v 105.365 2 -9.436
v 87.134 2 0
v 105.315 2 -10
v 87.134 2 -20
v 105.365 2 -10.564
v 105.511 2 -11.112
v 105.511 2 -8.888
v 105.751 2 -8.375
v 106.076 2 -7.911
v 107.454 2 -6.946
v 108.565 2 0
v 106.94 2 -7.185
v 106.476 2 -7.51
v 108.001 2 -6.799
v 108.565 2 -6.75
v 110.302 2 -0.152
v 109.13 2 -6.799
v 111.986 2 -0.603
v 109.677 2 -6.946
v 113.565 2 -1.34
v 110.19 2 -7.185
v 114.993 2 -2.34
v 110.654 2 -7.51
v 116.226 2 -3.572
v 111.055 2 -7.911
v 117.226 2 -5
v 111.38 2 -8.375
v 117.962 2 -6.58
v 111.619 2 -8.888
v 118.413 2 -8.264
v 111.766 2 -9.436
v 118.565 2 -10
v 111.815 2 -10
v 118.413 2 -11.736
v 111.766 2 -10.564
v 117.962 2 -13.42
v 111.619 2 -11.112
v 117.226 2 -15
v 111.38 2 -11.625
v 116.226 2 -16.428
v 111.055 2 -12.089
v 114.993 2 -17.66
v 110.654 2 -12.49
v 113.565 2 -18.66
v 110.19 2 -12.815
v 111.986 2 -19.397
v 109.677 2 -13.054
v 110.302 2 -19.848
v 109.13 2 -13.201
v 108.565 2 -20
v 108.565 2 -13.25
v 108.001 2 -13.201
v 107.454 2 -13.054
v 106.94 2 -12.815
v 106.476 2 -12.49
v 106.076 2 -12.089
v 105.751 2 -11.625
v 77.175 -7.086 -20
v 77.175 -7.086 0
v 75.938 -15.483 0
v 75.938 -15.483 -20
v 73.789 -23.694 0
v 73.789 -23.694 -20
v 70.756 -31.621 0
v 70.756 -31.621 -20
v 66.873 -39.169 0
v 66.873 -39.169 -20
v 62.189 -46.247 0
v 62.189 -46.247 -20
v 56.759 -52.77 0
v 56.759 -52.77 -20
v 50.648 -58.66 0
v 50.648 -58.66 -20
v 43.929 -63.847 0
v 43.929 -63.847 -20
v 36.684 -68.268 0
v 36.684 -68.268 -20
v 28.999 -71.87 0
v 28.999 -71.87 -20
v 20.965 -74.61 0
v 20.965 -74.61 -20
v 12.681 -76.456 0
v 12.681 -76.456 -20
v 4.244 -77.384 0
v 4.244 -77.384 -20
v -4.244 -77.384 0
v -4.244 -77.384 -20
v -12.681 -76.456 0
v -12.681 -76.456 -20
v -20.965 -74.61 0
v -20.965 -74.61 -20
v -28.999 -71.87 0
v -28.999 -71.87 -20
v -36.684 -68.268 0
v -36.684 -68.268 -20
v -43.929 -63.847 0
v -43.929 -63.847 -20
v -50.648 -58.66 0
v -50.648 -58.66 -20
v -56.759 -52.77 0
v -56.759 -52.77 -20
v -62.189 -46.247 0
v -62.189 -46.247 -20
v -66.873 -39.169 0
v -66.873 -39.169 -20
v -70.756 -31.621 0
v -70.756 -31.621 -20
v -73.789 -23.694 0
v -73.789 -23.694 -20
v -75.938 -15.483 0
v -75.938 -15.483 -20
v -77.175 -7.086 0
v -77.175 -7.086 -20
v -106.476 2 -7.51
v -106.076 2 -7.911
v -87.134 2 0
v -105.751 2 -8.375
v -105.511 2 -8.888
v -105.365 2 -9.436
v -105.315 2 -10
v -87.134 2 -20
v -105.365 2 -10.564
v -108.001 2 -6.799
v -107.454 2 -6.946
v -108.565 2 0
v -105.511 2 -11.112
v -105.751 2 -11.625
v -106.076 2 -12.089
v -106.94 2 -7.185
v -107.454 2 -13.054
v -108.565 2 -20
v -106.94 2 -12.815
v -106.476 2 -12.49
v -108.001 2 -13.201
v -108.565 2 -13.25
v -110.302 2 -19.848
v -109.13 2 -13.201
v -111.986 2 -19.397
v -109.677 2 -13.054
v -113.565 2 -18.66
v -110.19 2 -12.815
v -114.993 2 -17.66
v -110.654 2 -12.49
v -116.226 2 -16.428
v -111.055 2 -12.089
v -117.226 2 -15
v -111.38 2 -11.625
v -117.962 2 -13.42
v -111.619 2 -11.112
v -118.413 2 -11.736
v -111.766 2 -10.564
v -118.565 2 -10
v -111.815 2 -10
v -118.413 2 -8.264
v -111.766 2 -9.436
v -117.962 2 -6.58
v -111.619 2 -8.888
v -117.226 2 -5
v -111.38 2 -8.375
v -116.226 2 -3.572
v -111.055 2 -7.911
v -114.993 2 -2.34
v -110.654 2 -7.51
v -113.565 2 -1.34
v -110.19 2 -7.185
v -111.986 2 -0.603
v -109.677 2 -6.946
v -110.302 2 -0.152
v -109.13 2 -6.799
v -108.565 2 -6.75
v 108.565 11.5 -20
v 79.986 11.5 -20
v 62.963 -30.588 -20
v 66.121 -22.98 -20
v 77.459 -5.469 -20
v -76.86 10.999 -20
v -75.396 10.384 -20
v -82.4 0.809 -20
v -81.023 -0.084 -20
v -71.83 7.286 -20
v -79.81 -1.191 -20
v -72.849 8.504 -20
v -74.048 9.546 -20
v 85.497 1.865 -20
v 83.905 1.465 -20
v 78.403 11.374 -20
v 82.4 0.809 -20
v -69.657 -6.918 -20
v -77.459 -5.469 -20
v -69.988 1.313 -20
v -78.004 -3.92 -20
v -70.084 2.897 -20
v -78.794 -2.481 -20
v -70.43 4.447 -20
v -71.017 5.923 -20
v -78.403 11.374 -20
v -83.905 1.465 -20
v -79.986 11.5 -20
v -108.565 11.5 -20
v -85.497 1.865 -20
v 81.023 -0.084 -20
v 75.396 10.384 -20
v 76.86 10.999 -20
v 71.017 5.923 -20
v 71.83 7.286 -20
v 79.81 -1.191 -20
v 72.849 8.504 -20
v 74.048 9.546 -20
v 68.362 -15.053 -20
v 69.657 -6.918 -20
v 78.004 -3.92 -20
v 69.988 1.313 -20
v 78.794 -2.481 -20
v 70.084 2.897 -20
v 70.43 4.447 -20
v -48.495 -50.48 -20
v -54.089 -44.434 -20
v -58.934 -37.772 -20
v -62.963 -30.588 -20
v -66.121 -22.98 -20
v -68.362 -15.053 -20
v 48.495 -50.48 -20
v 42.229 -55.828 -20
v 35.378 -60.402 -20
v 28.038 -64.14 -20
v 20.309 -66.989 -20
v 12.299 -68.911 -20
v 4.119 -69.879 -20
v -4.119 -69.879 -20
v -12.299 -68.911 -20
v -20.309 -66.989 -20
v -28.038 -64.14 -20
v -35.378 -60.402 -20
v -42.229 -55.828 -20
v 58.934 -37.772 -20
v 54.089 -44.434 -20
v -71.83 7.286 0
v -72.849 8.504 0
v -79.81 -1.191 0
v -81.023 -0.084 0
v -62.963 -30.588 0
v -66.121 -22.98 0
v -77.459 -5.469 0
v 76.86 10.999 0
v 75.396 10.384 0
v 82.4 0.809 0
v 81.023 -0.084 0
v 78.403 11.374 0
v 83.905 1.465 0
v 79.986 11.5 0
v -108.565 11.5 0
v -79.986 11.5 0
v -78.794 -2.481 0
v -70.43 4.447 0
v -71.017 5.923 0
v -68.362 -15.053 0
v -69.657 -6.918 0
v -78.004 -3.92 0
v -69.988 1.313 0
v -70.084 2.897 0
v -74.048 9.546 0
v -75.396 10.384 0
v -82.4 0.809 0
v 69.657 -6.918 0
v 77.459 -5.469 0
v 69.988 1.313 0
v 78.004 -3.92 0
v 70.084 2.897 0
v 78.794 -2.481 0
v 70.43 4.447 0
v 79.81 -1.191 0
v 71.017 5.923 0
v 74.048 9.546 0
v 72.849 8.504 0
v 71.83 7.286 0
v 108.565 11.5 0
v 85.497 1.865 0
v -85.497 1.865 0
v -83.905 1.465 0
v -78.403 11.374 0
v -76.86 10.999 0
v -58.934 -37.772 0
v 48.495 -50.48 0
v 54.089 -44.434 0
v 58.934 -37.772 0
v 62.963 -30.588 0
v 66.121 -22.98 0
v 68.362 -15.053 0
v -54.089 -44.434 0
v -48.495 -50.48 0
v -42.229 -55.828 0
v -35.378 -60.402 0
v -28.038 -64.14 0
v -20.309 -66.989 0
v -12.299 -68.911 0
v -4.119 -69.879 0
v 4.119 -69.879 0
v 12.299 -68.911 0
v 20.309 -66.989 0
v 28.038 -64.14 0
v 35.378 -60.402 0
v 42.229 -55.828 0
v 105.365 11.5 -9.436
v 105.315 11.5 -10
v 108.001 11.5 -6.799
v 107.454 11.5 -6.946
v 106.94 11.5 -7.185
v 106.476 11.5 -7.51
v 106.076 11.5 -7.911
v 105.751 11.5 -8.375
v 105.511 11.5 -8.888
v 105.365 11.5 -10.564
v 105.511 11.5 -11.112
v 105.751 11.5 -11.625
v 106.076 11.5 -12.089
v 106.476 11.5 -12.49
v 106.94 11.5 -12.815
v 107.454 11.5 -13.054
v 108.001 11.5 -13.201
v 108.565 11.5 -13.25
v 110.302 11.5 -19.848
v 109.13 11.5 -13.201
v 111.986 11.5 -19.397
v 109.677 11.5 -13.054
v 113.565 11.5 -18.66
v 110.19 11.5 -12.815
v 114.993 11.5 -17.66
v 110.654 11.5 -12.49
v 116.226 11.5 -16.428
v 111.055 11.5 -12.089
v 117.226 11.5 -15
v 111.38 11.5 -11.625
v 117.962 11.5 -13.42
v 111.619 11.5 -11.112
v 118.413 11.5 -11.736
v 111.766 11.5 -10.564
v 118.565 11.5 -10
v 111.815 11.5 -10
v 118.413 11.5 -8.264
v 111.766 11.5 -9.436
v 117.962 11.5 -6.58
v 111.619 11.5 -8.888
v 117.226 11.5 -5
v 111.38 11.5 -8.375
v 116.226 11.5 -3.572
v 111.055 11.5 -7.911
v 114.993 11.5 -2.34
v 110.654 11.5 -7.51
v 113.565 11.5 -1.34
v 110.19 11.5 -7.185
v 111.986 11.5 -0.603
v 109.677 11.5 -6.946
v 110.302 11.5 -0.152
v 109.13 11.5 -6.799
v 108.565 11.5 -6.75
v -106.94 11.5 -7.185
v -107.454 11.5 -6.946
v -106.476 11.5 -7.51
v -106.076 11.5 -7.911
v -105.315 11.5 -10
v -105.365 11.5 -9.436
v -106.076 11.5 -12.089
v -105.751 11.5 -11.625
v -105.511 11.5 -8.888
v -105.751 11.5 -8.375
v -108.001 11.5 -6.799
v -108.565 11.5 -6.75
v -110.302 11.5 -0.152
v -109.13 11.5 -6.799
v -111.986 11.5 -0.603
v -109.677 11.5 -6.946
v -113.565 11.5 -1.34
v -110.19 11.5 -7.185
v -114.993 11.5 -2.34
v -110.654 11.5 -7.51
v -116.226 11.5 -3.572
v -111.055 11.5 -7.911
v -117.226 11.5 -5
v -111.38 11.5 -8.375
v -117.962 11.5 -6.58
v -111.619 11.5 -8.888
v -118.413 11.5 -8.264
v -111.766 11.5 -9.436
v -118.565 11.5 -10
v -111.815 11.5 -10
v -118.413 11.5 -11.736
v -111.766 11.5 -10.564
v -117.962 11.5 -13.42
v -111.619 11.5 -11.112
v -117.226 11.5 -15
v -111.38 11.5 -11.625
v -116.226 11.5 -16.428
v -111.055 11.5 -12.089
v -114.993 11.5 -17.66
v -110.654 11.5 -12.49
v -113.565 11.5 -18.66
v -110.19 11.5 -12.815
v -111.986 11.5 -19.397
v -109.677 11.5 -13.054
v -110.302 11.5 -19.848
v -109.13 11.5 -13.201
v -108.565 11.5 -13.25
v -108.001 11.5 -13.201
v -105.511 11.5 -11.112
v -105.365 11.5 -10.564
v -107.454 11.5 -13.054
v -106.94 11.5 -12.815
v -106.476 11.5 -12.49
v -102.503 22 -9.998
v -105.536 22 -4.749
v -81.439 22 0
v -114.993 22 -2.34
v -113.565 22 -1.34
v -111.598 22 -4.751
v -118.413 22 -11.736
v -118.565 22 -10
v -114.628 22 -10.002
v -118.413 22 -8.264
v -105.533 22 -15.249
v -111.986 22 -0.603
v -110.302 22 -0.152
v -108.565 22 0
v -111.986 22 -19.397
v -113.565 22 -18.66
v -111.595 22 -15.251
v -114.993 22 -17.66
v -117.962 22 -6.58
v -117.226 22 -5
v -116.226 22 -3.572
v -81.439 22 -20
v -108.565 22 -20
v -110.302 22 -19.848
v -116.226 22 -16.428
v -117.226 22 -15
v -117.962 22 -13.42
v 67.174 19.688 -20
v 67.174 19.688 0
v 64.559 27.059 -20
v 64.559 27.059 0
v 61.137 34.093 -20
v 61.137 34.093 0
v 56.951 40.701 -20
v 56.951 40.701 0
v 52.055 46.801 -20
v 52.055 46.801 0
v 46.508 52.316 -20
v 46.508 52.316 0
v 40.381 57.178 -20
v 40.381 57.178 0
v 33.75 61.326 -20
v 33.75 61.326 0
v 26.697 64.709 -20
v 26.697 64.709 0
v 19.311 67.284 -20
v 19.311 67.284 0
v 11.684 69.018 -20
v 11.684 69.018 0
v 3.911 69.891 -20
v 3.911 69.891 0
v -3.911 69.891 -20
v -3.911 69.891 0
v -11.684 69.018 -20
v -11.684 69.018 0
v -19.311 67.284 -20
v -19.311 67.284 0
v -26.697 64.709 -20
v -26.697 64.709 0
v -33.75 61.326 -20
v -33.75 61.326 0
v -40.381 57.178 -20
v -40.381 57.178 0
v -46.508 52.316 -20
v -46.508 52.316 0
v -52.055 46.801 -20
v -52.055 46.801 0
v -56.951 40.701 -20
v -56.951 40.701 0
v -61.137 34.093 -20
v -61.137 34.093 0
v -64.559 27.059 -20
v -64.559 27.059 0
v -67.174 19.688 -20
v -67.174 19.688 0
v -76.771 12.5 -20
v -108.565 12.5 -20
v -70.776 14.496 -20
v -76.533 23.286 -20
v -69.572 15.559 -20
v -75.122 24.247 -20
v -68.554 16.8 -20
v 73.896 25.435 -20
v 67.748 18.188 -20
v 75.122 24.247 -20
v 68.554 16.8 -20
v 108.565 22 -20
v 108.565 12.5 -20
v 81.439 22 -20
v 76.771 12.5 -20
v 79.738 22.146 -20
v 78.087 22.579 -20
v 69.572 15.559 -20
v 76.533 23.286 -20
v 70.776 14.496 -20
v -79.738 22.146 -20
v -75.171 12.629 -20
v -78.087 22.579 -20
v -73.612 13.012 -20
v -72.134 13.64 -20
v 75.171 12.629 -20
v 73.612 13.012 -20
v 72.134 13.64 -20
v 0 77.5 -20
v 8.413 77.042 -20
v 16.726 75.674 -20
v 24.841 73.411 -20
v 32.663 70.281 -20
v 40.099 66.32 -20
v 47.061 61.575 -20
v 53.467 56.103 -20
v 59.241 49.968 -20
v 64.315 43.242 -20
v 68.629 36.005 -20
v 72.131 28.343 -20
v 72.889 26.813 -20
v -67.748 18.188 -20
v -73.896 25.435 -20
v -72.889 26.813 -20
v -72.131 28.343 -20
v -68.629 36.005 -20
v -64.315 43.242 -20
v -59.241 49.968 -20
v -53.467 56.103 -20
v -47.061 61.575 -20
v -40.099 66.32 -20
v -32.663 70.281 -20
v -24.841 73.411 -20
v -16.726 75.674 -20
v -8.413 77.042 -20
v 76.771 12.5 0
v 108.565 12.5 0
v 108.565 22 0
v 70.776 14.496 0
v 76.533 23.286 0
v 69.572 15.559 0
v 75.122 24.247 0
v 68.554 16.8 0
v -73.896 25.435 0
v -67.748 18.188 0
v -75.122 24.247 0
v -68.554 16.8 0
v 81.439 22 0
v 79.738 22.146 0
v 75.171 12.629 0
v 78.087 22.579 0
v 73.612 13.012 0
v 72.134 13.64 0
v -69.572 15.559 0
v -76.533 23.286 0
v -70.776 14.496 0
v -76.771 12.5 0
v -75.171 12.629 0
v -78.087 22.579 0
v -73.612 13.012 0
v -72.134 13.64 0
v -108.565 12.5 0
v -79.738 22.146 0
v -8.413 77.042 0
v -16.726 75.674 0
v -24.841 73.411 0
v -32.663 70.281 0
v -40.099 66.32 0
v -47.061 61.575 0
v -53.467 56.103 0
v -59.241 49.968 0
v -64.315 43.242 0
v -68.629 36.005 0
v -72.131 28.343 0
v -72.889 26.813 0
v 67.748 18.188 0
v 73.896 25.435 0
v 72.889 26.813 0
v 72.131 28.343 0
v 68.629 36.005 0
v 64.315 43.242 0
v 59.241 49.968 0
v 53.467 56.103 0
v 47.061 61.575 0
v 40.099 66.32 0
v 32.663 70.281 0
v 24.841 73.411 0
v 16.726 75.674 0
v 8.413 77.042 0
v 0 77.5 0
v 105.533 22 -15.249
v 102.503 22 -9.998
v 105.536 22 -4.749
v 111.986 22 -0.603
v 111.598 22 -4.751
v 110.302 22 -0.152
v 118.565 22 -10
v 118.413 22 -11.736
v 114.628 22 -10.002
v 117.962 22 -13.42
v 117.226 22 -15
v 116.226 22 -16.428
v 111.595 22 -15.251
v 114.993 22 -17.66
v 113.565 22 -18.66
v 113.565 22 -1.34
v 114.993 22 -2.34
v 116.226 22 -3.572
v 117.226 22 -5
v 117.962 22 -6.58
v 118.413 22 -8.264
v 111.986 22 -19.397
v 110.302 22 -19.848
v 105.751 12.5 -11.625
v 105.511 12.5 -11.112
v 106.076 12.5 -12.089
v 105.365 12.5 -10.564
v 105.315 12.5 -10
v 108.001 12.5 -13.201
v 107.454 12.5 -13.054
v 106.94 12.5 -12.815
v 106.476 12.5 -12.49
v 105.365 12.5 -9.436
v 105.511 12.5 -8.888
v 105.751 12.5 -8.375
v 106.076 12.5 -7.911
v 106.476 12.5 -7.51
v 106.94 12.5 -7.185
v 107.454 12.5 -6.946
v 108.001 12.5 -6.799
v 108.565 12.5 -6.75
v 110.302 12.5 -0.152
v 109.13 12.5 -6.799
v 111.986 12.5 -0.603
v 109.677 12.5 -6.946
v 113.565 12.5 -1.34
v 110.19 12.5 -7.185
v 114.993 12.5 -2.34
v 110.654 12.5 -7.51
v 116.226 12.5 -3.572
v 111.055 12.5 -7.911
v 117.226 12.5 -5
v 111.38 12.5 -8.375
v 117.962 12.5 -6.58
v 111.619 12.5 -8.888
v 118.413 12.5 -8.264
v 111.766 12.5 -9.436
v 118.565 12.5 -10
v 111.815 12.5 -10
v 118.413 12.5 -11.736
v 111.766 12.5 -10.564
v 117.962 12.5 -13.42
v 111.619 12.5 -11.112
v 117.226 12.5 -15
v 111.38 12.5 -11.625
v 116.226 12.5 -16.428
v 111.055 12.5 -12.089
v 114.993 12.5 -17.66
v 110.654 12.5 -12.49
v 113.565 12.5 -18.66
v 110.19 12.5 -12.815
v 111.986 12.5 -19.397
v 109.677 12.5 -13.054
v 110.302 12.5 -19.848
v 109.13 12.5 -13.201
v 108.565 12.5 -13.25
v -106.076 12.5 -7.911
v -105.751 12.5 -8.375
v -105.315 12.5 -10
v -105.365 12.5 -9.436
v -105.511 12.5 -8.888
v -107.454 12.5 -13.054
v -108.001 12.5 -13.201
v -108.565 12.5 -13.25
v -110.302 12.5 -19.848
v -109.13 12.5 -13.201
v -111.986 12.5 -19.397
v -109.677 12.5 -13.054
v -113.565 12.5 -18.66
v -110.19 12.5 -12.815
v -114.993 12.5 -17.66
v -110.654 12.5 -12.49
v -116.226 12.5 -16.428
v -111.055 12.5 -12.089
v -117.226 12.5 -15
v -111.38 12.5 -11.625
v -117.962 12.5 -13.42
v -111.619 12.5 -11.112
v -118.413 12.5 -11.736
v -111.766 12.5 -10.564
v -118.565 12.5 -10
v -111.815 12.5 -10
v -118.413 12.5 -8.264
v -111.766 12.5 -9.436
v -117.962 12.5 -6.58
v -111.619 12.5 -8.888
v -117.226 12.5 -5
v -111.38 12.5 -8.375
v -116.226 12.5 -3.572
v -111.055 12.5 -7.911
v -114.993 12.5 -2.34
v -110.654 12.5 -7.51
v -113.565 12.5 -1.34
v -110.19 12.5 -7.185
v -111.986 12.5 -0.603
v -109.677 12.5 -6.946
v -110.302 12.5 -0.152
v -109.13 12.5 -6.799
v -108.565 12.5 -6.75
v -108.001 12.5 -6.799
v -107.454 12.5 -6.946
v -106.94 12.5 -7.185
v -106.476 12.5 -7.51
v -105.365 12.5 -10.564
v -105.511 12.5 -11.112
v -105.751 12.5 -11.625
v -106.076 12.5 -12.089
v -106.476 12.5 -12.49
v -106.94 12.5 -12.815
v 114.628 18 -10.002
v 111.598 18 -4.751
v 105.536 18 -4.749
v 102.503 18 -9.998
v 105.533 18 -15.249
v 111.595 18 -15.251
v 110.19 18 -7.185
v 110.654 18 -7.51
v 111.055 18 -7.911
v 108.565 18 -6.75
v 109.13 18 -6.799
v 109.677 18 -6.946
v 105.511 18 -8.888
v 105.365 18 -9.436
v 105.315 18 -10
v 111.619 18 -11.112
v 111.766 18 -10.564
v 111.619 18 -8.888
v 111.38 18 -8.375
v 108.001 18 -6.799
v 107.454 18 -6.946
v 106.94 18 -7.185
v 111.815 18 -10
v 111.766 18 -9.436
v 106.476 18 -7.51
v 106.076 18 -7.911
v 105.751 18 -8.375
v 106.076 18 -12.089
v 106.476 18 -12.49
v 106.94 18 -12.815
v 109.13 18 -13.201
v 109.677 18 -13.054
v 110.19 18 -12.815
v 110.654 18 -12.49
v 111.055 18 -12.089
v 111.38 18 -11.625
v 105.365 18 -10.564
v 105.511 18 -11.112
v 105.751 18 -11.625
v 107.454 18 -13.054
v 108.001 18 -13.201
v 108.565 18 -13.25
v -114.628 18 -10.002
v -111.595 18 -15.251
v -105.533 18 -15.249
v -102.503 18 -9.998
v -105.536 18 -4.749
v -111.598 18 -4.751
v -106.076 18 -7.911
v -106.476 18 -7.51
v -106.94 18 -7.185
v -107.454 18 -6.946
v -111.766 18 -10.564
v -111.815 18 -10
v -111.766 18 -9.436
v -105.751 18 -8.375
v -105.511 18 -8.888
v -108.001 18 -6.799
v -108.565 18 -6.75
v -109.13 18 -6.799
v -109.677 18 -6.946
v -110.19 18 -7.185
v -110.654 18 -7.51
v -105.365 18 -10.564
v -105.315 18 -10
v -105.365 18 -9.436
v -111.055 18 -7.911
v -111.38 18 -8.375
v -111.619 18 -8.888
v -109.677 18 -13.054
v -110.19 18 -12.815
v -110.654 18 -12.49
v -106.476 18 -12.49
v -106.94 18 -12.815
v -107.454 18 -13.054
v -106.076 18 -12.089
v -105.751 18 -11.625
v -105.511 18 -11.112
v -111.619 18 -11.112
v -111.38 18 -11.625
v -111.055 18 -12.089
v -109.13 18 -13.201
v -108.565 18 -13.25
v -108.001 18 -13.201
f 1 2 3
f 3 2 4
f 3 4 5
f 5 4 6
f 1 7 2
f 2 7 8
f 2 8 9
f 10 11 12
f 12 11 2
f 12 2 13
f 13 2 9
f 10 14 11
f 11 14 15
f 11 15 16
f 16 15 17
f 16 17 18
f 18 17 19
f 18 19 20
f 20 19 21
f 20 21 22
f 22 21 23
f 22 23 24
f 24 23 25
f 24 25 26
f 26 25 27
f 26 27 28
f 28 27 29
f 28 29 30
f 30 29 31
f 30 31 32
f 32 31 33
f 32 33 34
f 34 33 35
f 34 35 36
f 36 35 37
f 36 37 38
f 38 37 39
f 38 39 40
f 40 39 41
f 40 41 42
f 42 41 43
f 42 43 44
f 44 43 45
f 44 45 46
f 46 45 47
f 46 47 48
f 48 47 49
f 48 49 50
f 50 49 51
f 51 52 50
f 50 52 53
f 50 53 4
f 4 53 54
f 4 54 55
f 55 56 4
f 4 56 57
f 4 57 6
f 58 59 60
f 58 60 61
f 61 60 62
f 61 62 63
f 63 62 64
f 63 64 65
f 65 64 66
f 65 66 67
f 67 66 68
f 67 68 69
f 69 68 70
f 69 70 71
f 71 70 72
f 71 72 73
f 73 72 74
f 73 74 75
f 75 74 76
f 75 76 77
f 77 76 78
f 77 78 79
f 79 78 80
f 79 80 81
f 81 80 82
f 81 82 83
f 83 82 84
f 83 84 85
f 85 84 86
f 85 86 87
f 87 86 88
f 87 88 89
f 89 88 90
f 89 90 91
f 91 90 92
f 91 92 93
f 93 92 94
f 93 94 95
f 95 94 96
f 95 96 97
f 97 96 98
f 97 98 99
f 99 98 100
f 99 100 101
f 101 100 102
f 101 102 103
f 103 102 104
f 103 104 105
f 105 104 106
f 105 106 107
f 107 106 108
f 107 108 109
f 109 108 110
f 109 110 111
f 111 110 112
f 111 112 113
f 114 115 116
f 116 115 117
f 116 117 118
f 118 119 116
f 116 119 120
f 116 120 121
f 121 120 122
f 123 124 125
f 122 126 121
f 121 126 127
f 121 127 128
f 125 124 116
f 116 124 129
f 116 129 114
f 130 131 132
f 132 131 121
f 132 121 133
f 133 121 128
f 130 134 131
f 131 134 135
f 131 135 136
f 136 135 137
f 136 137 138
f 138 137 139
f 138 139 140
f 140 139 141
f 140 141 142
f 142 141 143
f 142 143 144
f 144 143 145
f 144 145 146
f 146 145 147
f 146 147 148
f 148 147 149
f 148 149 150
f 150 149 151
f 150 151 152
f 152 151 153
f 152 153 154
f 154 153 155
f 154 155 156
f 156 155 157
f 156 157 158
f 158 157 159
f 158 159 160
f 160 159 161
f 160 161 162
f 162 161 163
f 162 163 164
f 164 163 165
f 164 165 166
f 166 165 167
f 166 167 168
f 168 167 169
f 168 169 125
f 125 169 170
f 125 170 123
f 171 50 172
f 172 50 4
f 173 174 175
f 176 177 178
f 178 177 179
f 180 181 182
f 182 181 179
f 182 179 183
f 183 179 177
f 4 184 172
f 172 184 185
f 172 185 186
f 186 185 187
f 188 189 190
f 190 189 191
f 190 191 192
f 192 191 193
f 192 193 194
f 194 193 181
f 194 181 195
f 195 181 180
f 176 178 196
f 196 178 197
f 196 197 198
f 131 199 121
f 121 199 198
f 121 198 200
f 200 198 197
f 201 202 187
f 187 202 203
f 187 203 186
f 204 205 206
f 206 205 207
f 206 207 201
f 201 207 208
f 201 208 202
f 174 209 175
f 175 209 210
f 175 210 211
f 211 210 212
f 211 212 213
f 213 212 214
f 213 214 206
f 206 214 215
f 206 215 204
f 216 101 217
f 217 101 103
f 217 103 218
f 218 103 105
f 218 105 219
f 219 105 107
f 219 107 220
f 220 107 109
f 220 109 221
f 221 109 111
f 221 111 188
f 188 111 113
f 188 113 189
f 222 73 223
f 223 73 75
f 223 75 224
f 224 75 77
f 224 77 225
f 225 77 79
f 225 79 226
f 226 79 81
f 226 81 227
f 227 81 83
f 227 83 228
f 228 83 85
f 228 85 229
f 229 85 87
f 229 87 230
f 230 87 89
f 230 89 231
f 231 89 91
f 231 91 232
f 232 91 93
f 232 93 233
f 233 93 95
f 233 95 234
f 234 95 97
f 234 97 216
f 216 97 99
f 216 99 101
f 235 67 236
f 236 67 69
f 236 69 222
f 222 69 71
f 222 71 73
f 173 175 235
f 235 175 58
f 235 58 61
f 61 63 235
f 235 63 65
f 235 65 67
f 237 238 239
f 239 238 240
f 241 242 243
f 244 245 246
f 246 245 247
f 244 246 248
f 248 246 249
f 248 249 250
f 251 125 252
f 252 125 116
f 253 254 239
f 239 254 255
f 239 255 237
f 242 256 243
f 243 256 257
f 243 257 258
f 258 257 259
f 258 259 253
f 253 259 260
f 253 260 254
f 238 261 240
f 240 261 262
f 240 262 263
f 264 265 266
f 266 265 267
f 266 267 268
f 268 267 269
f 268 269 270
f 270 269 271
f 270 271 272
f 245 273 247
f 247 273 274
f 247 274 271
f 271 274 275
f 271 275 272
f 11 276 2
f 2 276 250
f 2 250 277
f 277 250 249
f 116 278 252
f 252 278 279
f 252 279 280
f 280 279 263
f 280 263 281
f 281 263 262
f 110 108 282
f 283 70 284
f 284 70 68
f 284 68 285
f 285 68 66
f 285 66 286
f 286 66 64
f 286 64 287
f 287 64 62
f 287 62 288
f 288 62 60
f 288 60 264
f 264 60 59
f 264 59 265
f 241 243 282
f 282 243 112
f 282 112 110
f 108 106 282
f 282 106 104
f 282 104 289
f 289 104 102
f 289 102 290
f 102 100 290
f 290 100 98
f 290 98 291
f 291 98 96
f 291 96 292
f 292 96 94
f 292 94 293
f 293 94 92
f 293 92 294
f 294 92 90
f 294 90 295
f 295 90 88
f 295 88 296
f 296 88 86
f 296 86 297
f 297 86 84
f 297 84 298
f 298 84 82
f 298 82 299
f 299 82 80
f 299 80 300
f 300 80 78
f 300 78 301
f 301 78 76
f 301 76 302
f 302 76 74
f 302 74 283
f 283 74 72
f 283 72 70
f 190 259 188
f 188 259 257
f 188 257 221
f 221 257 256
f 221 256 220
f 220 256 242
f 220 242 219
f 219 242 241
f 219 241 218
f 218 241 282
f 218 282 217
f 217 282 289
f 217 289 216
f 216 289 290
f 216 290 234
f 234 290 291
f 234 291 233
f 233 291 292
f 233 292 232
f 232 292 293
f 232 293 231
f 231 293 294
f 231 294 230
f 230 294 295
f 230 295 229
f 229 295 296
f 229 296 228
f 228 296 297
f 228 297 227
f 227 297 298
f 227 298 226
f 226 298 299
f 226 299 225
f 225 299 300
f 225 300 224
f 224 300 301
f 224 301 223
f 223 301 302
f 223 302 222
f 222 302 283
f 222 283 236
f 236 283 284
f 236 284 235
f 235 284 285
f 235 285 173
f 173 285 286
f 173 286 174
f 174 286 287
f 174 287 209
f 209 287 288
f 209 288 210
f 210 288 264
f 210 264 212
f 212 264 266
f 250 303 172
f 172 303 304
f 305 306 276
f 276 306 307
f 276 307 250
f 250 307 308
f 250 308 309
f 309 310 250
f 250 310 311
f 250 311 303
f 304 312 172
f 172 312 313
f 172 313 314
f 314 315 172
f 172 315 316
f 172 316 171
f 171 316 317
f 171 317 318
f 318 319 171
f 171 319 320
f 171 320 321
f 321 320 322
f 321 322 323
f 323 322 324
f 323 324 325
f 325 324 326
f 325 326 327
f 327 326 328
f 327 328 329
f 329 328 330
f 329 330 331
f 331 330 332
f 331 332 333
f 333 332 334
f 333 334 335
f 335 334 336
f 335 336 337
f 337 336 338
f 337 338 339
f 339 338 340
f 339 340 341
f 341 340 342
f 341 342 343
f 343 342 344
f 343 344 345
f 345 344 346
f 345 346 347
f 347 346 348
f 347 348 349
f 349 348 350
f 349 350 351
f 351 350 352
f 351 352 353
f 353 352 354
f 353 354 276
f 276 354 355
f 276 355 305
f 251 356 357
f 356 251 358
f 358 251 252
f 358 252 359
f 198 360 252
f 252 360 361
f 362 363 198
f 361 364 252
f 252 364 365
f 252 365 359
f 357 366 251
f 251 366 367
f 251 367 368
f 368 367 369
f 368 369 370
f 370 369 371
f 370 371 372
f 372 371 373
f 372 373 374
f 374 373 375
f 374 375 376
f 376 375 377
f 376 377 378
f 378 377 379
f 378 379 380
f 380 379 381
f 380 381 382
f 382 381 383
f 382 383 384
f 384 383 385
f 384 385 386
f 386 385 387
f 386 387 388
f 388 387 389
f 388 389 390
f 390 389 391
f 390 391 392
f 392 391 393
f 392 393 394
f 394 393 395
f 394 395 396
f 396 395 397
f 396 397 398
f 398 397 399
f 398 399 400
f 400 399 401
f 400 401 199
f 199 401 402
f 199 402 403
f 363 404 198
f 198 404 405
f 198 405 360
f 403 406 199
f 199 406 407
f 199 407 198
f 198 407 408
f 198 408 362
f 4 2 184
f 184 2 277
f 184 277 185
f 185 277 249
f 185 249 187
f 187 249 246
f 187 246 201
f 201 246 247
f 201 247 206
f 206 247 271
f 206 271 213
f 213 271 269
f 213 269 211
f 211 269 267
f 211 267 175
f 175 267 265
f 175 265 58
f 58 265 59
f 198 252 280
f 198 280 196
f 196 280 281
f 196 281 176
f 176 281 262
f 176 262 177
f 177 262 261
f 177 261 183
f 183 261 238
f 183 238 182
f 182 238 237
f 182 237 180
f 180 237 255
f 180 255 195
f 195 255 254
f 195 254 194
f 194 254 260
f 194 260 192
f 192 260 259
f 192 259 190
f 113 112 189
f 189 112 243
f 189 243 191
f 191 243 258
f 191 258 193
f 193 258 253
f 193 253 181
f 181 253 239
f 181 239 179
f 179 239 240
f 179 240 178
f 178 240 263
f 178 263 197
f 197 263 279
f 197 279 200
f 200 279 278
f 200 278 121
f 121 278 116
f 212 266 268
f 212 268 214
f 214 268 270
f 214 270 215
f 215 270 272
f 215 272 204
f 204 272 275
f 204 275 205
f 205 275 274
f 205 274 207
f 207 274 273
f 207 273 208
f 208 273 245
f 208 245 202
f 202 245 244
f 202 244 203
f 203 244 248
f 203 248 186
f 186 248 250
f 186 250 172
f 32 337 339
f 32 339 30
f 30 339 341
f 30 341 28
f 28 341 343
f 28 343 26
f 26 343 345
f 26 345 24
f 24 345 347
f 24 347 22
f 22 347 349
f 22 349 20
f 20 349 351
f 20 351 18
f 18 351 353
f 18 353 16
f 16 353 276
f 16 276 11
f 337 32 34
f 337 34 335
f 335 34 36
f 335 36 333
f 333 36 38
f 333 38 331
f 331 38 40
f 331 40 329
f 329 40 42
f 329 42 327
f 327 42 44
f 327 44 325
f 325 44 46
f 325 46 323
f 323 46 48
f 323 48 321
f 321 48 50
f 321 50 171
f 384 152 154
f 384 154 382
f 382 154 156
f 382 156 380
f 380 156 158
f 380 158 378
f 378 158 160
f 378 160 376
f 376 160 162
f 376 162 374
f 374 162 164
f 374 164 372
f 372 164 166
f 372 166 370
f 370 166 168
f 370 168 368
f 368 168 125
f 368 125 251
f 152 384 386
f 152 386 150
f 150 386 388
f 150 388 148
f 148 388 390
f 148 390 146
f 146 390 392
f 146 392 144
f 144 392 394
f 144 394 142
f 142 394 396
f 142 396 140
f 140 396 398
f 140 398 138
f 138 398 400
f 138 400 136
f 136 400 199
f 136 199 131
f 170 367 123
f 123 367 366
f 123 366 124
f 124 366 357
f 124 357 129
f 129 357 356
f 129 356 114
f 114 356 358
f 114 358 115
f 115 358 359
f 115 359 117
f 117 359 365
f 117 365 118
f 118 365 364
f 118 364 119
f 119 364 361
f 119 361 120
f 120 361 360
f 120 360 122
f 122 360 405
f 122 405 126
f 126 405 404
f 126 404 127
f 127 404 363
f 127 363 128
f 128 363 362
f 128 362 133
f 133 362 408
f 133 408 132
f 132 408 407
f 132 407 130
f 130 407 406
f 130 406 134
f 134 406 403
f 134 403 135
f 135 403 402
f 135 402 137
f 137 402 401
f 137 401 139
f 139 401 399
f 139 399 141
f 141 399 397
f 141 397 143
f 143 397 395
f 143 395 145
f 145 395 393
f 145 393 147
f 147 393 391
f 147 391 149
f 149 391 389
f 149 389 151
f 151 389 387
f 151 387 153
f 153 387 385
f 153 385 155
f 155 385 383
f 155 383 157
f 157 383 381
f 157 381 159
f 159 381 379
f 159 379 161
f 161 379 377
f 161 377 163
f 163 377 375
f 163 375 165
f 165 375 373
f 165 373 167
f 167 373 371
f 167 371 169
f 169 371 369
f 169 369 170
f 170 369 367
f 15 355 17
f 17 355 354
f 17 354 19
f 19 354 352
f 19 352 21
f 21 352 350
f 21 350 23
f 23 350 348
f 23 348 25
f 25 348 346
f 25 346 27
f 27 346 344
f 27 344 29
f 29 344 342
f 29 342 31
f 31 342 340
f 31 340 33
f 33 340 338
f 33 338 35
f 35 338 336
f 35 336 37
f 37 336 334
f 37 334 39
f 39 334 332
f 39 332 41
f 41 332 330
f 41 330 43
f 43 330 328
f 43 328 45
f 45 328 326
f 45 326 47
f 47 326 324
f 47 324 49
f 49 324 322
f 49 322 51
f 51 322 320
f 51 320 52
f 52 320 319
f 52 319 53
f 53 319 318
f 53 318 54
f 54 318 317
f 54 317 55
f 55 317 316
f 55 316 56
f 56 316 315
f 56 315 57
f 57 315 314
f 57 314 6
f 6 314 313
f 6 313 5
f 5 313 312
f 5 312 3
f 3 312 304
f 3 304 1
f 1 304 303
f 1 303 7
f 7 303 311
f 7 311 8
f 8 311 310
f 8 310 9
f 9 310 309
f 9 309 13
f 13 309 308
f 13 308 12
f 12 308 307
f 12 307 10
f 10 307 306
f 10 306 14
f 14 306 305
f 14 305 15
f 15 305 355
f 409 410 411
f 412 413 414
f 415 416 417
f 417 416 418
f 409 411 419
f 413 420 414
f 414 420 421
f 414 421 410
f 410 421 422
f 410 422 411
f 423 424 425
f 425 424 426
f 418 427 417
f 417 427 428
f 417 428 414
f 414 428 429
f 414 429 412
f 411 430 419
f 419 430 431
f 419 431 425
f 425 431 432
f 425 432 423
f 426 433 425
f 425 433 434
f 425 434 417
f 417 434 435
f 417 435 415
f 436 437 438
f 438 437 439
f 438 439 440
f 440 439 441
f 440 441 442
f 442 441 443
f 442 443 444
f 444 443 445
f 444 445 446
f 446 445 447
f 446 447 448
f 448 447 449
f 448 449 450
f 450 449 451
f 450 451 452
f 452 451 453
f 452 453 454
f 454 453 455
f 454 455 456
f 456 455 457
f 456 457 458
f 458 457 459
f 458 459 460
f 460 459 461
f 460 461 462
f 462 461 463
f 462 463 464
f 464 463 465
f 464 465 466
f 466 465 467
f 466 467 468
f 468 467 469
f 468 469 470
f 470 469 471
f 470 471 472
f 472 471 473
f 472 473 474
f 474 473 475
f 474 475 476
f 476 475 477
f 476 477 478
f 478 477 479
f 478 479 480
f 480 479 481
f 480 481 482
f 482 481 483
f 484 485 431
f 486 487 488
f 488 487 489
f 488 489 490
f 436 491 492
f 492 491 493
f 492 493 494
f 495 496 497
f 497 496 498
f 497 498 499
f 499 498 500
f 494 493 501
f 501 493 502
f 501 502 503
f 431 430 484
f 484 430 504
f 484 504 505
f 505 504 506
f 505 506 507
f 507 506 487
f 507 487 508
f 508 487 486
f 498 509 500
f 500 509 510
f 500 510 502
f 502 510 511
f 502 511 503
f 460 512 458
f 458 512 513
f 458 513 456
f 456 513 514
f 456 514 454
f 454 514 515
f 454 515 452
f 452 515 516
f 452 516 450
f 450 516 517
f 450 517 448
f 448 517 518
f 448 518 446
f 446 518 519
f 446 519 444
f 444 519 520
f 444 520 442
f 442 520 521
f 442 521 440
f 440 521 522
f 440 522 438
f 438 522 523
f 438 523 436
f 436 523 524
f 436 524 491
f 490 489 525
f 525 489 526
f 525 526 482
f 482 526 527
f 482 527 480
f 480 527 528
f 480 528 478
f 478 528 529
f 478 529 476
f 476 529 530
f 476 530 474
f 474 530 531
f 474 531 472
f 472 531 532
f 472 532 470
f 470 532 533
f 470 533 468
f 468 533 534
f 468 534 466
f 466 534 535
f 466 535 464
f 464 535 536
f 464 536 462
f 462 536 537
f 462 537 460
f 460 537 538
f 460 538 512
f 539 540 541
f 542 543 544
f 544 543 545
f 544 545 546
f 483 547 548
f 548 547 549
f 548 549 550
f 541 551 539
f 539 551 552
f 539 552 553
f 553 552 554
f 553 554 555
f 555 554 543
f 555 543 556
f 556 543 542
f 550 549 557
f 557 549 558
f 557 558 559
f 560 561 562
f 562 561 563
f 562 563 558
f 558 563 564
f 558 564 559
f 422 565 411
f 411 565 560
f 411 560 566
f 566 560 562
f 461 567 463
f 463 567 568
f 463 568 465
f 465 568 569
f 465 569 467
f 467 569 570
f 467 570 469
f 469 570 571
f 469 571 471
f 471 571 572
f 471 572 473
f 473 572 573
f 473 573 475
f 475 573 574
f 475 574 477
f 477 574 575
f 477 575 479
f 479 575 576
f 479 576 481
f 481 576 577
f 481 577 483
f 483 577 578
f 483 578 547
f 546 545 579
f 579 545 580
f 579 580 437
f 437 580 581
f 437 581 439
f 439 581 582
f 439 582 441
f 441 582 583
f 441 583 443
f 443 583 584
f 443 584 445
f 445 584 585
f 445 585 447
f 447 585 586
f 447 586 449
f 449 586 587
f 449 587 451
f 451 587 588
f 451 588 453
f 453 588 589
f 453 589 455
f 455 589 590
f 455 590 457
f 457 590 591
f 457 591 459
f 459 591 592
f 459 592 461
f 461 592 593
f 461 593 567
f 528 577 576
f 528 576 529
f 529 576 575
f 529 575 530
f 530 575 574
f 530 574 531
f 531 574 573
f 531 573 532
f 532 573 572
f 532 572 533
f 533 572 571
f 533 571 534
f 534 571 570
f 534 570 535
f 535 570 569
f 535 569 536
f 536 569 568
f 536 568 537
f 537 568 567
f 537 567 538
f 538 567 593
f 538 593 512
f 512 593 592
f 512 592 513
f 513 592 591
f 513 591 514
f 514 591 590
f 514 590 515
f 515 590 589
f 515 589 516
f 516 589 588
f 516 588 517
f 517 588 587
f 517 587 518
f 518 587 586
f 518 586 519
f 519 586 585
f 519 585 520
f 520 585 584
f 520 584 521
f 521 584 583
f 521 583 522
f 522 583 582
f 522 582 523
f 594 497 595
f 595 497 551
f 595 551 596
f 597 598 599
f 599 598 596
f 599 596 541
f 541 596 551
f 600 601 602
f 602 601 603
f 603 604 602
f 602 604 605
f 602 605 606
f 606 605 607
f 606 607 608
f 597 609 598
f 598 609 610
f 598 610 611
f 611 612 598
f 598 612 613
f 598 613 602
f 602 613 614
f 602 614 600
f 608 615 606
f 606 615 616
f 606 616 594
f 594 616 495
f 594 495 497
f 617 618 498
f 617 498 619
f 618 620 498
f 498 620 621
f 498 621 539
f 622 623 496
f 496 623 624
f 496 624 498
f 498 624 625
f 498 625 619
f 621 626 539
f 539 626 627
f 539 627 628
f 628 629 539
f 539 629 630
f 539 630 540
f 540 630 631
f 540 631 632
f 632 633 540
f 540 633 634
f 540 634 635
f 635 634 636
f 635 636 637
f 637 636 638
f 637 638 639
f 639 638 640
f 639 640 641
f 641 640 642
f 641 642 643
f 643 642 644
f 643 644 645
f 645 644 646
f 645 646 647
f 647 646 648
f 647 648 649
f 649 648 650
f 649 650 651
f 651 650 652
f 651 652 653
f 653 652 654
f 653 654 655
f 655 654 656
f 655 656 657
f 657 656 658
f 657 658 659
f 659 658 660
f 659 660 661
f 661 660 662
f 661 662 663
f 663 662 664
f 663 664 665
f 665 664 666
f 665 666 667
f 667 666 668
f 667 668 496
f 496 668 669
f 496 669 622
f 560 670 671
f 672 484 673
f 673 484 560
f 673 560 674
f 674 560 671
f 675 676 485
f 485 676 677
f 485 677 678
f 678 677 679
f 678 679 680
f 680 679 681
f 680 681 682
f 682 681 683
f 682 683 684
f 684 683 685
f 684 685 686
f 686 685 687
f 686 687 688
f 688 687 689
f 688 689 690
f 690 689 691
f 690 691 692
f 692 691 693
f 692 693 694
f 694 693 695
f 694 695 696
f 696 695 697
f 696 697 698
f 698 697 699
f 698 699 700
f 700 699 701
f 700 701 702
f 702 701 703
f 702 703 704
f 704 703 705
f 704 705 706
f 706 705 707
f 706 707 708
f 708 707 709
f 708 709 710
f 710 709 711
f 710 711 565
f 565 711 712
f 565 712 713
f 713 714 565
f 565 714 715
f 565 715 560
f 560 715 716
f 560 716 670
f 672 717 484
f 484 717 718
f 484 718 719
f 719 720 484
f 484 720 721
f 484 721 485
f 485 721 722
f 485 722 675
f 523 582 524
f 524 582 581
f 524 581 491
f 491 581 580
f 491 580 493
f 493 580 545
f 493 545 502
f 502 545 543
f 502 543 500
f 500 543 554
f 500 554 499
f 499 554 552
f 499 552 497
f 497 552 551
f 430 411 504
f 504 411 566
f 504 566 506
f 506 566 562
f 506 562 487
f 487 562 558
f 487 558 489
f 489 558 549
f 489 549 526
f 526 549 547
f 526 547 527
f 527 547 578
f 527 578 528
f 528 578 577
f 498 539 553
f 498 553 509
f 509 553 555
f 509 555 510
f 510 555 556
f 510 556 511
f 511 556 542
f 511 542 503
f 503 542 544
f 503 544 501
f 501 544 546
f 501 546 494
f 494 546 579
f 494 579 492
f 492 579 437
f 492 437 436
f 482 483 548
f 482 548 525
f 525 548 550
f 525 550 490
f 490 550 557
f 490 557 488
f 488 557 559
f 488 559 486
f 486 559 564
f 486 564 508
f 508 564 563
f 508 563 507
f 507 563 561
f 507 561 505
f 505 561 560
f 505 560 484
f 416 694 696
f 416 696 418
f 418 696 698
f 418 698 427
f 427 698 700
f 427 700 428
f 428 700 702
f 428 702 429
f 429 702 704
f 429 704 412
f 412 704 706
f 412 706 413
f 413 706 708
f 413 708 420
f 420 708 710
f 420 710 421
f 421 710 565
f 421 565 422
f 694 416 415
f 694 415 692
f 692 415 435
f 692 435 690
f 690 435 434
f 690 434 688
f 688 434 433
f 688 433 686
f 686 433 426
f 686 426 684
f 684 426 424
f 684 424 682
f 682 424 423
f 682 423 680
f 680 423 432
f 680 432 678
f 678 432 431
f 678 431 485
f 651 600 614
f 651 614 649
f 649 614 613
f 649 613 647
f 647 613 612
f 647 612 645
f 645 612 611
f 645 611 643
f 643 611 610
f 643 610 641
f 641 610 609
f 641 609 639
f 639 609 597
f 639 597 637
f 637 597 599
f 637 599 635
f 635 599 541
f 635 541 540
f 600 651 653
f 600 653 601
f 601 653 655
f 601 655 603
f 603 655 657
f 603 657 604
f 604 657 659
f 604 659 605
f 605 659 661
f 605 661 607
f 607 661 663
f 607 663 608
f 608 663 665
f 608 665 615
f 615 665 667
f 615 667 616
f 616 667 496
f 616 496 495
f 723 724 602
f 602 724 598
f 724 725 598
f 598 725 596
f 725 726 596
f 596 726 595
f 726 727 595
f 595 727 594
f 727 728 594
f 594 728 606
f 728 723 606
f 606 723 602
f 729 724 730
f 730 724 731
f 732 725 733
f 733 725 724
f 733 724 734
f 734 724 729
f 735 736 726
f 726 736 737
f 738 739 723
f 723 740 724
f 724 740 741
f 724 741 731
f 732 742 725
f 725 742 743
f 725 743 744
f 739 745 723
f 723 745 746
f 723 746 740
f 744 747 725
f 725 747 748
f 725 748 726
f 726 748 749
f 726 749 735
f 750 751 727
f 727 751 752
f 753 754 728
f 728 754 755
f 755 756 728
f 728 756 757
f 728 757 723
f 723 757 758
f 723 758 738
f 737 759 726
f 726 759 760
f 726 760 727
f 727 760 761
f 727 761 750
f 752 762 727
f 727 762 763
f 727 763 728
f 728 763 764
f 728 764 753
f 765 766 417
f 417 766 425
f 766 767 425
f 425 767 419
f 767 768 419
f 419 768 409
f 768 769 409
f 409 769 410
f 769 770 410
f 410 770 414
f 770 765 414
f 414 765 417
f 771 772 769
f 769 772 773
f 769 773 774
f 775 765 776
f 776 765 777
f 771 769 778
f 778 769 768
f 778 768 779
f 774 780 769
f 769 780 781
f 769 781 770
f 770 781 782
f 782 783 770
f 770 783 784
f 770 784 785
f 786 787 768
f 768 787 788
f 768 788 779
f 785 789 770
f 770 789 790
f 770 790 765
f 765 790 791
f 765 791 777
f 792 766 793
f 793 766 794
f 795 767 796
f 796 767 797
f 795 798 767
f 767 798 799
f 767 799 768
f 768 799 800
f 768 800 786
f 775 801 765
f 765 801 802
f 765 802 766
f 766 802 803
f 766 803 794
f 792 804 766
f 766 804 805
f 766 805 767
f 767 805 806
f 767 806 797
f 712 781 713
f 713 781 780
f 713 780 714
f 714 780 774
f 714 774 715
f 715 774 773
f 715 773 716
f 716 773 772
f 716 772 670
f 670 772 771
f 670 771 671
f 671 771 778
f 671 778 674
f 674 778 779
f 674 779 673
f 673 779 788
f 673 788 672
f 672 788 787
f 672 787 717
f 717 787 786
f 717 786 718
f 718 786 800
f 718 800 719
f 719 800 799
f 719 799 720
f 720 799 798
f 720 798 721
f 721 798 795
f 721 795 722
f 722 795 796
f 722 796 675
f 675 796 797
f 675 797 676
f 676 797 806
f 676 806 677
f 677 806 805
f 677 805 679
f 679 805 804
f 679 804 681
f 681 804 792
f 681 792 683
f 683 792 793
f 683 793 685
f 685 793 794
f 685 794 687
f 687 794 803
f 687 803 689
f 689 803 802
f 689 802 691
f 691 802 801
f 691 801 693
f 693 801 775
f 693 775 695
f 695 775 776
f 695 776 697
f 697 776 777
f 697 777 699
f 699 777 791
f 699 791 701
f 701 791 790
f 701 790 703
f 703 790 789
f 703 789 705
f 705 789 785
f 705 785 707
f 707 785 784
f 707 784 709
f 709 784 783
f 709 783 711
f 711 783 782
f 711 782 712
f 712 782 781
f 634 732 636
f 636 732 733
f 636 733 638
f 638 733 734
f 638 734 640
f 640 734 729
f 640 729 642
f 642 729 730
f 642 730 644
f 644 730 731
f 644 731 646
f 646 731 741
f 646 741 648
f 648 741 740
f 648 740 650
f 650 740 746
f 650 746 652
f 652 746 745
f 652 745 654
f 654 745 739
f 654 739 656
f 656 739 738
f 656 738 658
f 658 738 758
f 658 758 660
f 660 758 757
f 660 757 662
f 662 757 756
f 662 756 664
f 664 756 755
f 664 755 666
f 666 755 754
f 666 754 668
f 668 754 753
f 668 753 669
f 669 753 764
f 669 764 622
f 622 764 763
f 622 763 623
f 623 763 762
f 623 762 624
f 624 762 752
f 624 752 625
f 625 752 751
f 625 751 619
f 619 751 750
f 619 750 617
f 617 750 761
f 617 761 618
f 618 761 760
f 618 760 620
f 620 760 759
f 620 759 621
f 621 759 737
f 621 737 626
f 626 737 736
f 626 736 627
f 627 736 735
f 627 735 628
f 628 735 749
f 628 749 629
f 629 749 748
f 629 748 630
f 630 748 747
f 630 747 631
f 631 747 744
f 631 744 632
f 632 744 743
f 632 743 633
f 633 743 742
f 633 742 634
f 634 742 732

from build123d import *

# Parameters (mm, degrees)
SKETCH2_R               = 70
BOSS_EXTRUDE1_DEPTH     = 20
CUT_EXTRUDE1_DEPTH      = 251.274252393
CUT_EXTRUDE1_DEPTH_BACK = 251.274252393
SKETCH4_W               = 20
SKETCH4_H               = 1
FILLET1_R               = 10
FILLET2_R               = 10
FILLET3_R               = 10
FILLET4_R               = 10
CUT_EXTRUDE2_DEPTH      = 4
SKETCH6_R               = 3.25
CUT_EXTRUDE3_DEPTH      = 154.551254807


with BuildPart() as part:
    # Sketch2 → Boss-Extrude1 (new body)
    with BuildSketch(Plane.XY):
        with BuildLine():
            Line((-118.56533158, 2), (-77.47418925, 2))
            ThreePointArc((-77.47418925, 2), (0, -77.5), (77.47418925, 2))
            Line((77.47418925, 2), (118.56533158, 2))
            Line((118.56533158, 2), (118.56533158, 22))
            Line((118.56533158, 22), (74.311842932, 22))
            ThreePointArc((74.311842932, 22), (0, 77.5), (-74.311842932, 22))
            Line((-74.311842932, 22), (-118.56533158, 22))
            Line((-118.56533158, 22), (-118.56533158, 2))
        make_face()
        Circle(SKETCH2_R, mode=Mode.SUBTRACT)
    extrude(amount=-BOSS_EXTRUDE1_DEPTH)

    # Sketch4 → Cut-Extrude1 (cut, two sides: drawn at the far end of the back side and taken through both)
    with BuildSketch(Plane.ZY.offset(118.56533158).offset(-CUT_EXTRUDE1_DEPTH_BACK)):
        with Locations((-10, 12)):
            Rectangle(SKETCH4_W, SKETCH4_H)
    extrude(amount=CUT_EXTRUDE1_DEPTH + CUT_EXTRUDE1_DEPTH_BACK, mode=Mode.SUBTRACT)


with BuildPart() as cut_extrude1_piece_1:
    # of the separate pieces the step leaves, piece 1, a body of its own (cut_extrude1_pieces)
    add(part.part.solids().sort_by_distance((-118.56533158, 11.5, 0))[0])

    # Fillet2
    fillet2_edges = [cut_extrude1_piece_1.edges().sort_by_distance(p)[0] for p in [
        (-77.47418925, 2, -10),
        (77.47418925, 2, -10),
        (-69.048895719, 11.5, -10),
        (69.048895719, 11.5, -10),
    ]]
    fillet(fillet2_edges, radius=FILLET2_R)

    # Fillet4
    fillet4_edges = [cut_extrude1_piece_1.edges().sort_by_distance(p)[0] for p in [
        (118.56533158, 6.75, 0),
        (118.56533158, 6.75, -20),
        (-118.56533158, 6.75, 0),
        (-118.56533158, 6.75, -20),
    ]]
    fillet(fillet4_edges, radius=FILLET4_R - 0.0001)  # a hair under: the kernel refuses the full size


with BuildPart() as cut_extrude1_piece_2:
    # of the separate pieces the step leaves, piece 2, a body of its own (cut_extrude1_pieces)
    add(part.part.solids().sort_by_distance((-74.311842932, 22, 0))[0])

    # Fillet1
    fillet1_edges = [cut_extrude1_piece_2.edges().sort_by_distance(p)[0] for p in [
        (-74.311842932, 22, -10),
        (74.311842932, 22, -10),
        (68.87488657, 12.5, -10),
        (-68.87488657, 12.5, -10),
    ]]
    fillet(fillet1_edges, radius=FILLET1_R)

    # Fillet3
    fillet3_edges = [cut_extrude1_piece_2.edges().sort_by_distance(p)[0] for p in [
        (-118.56533158, 17.25, 0),
        (-118.56533158, 17.25, -20),
        (118.56533158, 17.25, 0),
        (118.56533158, 17.25, -20),
    ]]
    fillet(fillet3_edges, radius=FILLET3_R - 0.0001)  # a hair under: the kernel refuses the full size

    # Sketch5 → Cut-Extrude2 (cut)
    with BuildSketch(Plane(origin=(0, 22, 0), x_dir=(-1, 0, 0), z_dir=(0, -1, 0))):
        Polygon((-114.627509104, 10.001916974), (-111.594760194, 15.250958224), (-105.532582671, 15.249041251), (-102.503154057, 9.998083026), (-105.535902967, 4.749041776), (-111.59808049, 4.750958749), align=None)
        Polygon((111.594760194, 15.250958224), (105.532582671, 15.249041251), (102.503154057, 9.998083026), (105.535902967, 4.749041776), (111.59808049, 4.750958749), (114.627509104, 10.001916974), align=None)
    extrude(amount=CUT_EXTRUDE2_DEPTH, mode=Mode.SUBTRACT)


with BuildPart() as cut_extrude3_tool:
    # Sketch6 → Cut-Extrude3 (new, through all)
    with BuildSketch(Plane(origin=(0, 18, 0), x_dir=(-1, 0, 0), z_dir=(0, -1, 0))):
        with BuildLine():
            ThreePointArc((111.81533158, 10), (110.189886548, 12.814839455), (106.939441638, 12.814068566))
            Line((106.939441638, 12.814068566), (110.191221523, 7.185931434))
            ThreePointArc((110.191221523, 7.185931434), (111.380171035, 8.375445032), (111.81533158, 10))
        make_face()
        with BuildLine():
            Line((110.191221523, 7.185931434), (106.939441638, 12.814068566))
            ThreePointArc((106.939441638, 12.814068566), (105.751263014, 8.374110058), (110.191221523, 7.185931434))
        make_face()
        with Locations(Location((-108.56533158, 10, 0), (0, 0, 270))):
            Circle(SKETCH6_R)
    extrude(amount=CUT_EXTRUDE3_DEPTH)


with BuildPart() as cut_extrude1_piece_1_1:
    add(cut_extrude1_piece_1.part)

    # Cut-Extrude3: cut by cut_extrude3_tool
    add(cut_extrude3_tool.part, mode=Mode.SUBTRACT)


with BuildPart() as cut_extrude1_piece_2_1:
    add(cut_extrude1_piece_2.part)

    # Cut-Extrude3: cut by cut_extrude3_tool
    add(cut_extrude3_tool.part, mode=Mode.SUBTRACT)


solid = Compound([cut_extrude1_piece_1_1.part, cut_extrude1_piece_2_1.part])
